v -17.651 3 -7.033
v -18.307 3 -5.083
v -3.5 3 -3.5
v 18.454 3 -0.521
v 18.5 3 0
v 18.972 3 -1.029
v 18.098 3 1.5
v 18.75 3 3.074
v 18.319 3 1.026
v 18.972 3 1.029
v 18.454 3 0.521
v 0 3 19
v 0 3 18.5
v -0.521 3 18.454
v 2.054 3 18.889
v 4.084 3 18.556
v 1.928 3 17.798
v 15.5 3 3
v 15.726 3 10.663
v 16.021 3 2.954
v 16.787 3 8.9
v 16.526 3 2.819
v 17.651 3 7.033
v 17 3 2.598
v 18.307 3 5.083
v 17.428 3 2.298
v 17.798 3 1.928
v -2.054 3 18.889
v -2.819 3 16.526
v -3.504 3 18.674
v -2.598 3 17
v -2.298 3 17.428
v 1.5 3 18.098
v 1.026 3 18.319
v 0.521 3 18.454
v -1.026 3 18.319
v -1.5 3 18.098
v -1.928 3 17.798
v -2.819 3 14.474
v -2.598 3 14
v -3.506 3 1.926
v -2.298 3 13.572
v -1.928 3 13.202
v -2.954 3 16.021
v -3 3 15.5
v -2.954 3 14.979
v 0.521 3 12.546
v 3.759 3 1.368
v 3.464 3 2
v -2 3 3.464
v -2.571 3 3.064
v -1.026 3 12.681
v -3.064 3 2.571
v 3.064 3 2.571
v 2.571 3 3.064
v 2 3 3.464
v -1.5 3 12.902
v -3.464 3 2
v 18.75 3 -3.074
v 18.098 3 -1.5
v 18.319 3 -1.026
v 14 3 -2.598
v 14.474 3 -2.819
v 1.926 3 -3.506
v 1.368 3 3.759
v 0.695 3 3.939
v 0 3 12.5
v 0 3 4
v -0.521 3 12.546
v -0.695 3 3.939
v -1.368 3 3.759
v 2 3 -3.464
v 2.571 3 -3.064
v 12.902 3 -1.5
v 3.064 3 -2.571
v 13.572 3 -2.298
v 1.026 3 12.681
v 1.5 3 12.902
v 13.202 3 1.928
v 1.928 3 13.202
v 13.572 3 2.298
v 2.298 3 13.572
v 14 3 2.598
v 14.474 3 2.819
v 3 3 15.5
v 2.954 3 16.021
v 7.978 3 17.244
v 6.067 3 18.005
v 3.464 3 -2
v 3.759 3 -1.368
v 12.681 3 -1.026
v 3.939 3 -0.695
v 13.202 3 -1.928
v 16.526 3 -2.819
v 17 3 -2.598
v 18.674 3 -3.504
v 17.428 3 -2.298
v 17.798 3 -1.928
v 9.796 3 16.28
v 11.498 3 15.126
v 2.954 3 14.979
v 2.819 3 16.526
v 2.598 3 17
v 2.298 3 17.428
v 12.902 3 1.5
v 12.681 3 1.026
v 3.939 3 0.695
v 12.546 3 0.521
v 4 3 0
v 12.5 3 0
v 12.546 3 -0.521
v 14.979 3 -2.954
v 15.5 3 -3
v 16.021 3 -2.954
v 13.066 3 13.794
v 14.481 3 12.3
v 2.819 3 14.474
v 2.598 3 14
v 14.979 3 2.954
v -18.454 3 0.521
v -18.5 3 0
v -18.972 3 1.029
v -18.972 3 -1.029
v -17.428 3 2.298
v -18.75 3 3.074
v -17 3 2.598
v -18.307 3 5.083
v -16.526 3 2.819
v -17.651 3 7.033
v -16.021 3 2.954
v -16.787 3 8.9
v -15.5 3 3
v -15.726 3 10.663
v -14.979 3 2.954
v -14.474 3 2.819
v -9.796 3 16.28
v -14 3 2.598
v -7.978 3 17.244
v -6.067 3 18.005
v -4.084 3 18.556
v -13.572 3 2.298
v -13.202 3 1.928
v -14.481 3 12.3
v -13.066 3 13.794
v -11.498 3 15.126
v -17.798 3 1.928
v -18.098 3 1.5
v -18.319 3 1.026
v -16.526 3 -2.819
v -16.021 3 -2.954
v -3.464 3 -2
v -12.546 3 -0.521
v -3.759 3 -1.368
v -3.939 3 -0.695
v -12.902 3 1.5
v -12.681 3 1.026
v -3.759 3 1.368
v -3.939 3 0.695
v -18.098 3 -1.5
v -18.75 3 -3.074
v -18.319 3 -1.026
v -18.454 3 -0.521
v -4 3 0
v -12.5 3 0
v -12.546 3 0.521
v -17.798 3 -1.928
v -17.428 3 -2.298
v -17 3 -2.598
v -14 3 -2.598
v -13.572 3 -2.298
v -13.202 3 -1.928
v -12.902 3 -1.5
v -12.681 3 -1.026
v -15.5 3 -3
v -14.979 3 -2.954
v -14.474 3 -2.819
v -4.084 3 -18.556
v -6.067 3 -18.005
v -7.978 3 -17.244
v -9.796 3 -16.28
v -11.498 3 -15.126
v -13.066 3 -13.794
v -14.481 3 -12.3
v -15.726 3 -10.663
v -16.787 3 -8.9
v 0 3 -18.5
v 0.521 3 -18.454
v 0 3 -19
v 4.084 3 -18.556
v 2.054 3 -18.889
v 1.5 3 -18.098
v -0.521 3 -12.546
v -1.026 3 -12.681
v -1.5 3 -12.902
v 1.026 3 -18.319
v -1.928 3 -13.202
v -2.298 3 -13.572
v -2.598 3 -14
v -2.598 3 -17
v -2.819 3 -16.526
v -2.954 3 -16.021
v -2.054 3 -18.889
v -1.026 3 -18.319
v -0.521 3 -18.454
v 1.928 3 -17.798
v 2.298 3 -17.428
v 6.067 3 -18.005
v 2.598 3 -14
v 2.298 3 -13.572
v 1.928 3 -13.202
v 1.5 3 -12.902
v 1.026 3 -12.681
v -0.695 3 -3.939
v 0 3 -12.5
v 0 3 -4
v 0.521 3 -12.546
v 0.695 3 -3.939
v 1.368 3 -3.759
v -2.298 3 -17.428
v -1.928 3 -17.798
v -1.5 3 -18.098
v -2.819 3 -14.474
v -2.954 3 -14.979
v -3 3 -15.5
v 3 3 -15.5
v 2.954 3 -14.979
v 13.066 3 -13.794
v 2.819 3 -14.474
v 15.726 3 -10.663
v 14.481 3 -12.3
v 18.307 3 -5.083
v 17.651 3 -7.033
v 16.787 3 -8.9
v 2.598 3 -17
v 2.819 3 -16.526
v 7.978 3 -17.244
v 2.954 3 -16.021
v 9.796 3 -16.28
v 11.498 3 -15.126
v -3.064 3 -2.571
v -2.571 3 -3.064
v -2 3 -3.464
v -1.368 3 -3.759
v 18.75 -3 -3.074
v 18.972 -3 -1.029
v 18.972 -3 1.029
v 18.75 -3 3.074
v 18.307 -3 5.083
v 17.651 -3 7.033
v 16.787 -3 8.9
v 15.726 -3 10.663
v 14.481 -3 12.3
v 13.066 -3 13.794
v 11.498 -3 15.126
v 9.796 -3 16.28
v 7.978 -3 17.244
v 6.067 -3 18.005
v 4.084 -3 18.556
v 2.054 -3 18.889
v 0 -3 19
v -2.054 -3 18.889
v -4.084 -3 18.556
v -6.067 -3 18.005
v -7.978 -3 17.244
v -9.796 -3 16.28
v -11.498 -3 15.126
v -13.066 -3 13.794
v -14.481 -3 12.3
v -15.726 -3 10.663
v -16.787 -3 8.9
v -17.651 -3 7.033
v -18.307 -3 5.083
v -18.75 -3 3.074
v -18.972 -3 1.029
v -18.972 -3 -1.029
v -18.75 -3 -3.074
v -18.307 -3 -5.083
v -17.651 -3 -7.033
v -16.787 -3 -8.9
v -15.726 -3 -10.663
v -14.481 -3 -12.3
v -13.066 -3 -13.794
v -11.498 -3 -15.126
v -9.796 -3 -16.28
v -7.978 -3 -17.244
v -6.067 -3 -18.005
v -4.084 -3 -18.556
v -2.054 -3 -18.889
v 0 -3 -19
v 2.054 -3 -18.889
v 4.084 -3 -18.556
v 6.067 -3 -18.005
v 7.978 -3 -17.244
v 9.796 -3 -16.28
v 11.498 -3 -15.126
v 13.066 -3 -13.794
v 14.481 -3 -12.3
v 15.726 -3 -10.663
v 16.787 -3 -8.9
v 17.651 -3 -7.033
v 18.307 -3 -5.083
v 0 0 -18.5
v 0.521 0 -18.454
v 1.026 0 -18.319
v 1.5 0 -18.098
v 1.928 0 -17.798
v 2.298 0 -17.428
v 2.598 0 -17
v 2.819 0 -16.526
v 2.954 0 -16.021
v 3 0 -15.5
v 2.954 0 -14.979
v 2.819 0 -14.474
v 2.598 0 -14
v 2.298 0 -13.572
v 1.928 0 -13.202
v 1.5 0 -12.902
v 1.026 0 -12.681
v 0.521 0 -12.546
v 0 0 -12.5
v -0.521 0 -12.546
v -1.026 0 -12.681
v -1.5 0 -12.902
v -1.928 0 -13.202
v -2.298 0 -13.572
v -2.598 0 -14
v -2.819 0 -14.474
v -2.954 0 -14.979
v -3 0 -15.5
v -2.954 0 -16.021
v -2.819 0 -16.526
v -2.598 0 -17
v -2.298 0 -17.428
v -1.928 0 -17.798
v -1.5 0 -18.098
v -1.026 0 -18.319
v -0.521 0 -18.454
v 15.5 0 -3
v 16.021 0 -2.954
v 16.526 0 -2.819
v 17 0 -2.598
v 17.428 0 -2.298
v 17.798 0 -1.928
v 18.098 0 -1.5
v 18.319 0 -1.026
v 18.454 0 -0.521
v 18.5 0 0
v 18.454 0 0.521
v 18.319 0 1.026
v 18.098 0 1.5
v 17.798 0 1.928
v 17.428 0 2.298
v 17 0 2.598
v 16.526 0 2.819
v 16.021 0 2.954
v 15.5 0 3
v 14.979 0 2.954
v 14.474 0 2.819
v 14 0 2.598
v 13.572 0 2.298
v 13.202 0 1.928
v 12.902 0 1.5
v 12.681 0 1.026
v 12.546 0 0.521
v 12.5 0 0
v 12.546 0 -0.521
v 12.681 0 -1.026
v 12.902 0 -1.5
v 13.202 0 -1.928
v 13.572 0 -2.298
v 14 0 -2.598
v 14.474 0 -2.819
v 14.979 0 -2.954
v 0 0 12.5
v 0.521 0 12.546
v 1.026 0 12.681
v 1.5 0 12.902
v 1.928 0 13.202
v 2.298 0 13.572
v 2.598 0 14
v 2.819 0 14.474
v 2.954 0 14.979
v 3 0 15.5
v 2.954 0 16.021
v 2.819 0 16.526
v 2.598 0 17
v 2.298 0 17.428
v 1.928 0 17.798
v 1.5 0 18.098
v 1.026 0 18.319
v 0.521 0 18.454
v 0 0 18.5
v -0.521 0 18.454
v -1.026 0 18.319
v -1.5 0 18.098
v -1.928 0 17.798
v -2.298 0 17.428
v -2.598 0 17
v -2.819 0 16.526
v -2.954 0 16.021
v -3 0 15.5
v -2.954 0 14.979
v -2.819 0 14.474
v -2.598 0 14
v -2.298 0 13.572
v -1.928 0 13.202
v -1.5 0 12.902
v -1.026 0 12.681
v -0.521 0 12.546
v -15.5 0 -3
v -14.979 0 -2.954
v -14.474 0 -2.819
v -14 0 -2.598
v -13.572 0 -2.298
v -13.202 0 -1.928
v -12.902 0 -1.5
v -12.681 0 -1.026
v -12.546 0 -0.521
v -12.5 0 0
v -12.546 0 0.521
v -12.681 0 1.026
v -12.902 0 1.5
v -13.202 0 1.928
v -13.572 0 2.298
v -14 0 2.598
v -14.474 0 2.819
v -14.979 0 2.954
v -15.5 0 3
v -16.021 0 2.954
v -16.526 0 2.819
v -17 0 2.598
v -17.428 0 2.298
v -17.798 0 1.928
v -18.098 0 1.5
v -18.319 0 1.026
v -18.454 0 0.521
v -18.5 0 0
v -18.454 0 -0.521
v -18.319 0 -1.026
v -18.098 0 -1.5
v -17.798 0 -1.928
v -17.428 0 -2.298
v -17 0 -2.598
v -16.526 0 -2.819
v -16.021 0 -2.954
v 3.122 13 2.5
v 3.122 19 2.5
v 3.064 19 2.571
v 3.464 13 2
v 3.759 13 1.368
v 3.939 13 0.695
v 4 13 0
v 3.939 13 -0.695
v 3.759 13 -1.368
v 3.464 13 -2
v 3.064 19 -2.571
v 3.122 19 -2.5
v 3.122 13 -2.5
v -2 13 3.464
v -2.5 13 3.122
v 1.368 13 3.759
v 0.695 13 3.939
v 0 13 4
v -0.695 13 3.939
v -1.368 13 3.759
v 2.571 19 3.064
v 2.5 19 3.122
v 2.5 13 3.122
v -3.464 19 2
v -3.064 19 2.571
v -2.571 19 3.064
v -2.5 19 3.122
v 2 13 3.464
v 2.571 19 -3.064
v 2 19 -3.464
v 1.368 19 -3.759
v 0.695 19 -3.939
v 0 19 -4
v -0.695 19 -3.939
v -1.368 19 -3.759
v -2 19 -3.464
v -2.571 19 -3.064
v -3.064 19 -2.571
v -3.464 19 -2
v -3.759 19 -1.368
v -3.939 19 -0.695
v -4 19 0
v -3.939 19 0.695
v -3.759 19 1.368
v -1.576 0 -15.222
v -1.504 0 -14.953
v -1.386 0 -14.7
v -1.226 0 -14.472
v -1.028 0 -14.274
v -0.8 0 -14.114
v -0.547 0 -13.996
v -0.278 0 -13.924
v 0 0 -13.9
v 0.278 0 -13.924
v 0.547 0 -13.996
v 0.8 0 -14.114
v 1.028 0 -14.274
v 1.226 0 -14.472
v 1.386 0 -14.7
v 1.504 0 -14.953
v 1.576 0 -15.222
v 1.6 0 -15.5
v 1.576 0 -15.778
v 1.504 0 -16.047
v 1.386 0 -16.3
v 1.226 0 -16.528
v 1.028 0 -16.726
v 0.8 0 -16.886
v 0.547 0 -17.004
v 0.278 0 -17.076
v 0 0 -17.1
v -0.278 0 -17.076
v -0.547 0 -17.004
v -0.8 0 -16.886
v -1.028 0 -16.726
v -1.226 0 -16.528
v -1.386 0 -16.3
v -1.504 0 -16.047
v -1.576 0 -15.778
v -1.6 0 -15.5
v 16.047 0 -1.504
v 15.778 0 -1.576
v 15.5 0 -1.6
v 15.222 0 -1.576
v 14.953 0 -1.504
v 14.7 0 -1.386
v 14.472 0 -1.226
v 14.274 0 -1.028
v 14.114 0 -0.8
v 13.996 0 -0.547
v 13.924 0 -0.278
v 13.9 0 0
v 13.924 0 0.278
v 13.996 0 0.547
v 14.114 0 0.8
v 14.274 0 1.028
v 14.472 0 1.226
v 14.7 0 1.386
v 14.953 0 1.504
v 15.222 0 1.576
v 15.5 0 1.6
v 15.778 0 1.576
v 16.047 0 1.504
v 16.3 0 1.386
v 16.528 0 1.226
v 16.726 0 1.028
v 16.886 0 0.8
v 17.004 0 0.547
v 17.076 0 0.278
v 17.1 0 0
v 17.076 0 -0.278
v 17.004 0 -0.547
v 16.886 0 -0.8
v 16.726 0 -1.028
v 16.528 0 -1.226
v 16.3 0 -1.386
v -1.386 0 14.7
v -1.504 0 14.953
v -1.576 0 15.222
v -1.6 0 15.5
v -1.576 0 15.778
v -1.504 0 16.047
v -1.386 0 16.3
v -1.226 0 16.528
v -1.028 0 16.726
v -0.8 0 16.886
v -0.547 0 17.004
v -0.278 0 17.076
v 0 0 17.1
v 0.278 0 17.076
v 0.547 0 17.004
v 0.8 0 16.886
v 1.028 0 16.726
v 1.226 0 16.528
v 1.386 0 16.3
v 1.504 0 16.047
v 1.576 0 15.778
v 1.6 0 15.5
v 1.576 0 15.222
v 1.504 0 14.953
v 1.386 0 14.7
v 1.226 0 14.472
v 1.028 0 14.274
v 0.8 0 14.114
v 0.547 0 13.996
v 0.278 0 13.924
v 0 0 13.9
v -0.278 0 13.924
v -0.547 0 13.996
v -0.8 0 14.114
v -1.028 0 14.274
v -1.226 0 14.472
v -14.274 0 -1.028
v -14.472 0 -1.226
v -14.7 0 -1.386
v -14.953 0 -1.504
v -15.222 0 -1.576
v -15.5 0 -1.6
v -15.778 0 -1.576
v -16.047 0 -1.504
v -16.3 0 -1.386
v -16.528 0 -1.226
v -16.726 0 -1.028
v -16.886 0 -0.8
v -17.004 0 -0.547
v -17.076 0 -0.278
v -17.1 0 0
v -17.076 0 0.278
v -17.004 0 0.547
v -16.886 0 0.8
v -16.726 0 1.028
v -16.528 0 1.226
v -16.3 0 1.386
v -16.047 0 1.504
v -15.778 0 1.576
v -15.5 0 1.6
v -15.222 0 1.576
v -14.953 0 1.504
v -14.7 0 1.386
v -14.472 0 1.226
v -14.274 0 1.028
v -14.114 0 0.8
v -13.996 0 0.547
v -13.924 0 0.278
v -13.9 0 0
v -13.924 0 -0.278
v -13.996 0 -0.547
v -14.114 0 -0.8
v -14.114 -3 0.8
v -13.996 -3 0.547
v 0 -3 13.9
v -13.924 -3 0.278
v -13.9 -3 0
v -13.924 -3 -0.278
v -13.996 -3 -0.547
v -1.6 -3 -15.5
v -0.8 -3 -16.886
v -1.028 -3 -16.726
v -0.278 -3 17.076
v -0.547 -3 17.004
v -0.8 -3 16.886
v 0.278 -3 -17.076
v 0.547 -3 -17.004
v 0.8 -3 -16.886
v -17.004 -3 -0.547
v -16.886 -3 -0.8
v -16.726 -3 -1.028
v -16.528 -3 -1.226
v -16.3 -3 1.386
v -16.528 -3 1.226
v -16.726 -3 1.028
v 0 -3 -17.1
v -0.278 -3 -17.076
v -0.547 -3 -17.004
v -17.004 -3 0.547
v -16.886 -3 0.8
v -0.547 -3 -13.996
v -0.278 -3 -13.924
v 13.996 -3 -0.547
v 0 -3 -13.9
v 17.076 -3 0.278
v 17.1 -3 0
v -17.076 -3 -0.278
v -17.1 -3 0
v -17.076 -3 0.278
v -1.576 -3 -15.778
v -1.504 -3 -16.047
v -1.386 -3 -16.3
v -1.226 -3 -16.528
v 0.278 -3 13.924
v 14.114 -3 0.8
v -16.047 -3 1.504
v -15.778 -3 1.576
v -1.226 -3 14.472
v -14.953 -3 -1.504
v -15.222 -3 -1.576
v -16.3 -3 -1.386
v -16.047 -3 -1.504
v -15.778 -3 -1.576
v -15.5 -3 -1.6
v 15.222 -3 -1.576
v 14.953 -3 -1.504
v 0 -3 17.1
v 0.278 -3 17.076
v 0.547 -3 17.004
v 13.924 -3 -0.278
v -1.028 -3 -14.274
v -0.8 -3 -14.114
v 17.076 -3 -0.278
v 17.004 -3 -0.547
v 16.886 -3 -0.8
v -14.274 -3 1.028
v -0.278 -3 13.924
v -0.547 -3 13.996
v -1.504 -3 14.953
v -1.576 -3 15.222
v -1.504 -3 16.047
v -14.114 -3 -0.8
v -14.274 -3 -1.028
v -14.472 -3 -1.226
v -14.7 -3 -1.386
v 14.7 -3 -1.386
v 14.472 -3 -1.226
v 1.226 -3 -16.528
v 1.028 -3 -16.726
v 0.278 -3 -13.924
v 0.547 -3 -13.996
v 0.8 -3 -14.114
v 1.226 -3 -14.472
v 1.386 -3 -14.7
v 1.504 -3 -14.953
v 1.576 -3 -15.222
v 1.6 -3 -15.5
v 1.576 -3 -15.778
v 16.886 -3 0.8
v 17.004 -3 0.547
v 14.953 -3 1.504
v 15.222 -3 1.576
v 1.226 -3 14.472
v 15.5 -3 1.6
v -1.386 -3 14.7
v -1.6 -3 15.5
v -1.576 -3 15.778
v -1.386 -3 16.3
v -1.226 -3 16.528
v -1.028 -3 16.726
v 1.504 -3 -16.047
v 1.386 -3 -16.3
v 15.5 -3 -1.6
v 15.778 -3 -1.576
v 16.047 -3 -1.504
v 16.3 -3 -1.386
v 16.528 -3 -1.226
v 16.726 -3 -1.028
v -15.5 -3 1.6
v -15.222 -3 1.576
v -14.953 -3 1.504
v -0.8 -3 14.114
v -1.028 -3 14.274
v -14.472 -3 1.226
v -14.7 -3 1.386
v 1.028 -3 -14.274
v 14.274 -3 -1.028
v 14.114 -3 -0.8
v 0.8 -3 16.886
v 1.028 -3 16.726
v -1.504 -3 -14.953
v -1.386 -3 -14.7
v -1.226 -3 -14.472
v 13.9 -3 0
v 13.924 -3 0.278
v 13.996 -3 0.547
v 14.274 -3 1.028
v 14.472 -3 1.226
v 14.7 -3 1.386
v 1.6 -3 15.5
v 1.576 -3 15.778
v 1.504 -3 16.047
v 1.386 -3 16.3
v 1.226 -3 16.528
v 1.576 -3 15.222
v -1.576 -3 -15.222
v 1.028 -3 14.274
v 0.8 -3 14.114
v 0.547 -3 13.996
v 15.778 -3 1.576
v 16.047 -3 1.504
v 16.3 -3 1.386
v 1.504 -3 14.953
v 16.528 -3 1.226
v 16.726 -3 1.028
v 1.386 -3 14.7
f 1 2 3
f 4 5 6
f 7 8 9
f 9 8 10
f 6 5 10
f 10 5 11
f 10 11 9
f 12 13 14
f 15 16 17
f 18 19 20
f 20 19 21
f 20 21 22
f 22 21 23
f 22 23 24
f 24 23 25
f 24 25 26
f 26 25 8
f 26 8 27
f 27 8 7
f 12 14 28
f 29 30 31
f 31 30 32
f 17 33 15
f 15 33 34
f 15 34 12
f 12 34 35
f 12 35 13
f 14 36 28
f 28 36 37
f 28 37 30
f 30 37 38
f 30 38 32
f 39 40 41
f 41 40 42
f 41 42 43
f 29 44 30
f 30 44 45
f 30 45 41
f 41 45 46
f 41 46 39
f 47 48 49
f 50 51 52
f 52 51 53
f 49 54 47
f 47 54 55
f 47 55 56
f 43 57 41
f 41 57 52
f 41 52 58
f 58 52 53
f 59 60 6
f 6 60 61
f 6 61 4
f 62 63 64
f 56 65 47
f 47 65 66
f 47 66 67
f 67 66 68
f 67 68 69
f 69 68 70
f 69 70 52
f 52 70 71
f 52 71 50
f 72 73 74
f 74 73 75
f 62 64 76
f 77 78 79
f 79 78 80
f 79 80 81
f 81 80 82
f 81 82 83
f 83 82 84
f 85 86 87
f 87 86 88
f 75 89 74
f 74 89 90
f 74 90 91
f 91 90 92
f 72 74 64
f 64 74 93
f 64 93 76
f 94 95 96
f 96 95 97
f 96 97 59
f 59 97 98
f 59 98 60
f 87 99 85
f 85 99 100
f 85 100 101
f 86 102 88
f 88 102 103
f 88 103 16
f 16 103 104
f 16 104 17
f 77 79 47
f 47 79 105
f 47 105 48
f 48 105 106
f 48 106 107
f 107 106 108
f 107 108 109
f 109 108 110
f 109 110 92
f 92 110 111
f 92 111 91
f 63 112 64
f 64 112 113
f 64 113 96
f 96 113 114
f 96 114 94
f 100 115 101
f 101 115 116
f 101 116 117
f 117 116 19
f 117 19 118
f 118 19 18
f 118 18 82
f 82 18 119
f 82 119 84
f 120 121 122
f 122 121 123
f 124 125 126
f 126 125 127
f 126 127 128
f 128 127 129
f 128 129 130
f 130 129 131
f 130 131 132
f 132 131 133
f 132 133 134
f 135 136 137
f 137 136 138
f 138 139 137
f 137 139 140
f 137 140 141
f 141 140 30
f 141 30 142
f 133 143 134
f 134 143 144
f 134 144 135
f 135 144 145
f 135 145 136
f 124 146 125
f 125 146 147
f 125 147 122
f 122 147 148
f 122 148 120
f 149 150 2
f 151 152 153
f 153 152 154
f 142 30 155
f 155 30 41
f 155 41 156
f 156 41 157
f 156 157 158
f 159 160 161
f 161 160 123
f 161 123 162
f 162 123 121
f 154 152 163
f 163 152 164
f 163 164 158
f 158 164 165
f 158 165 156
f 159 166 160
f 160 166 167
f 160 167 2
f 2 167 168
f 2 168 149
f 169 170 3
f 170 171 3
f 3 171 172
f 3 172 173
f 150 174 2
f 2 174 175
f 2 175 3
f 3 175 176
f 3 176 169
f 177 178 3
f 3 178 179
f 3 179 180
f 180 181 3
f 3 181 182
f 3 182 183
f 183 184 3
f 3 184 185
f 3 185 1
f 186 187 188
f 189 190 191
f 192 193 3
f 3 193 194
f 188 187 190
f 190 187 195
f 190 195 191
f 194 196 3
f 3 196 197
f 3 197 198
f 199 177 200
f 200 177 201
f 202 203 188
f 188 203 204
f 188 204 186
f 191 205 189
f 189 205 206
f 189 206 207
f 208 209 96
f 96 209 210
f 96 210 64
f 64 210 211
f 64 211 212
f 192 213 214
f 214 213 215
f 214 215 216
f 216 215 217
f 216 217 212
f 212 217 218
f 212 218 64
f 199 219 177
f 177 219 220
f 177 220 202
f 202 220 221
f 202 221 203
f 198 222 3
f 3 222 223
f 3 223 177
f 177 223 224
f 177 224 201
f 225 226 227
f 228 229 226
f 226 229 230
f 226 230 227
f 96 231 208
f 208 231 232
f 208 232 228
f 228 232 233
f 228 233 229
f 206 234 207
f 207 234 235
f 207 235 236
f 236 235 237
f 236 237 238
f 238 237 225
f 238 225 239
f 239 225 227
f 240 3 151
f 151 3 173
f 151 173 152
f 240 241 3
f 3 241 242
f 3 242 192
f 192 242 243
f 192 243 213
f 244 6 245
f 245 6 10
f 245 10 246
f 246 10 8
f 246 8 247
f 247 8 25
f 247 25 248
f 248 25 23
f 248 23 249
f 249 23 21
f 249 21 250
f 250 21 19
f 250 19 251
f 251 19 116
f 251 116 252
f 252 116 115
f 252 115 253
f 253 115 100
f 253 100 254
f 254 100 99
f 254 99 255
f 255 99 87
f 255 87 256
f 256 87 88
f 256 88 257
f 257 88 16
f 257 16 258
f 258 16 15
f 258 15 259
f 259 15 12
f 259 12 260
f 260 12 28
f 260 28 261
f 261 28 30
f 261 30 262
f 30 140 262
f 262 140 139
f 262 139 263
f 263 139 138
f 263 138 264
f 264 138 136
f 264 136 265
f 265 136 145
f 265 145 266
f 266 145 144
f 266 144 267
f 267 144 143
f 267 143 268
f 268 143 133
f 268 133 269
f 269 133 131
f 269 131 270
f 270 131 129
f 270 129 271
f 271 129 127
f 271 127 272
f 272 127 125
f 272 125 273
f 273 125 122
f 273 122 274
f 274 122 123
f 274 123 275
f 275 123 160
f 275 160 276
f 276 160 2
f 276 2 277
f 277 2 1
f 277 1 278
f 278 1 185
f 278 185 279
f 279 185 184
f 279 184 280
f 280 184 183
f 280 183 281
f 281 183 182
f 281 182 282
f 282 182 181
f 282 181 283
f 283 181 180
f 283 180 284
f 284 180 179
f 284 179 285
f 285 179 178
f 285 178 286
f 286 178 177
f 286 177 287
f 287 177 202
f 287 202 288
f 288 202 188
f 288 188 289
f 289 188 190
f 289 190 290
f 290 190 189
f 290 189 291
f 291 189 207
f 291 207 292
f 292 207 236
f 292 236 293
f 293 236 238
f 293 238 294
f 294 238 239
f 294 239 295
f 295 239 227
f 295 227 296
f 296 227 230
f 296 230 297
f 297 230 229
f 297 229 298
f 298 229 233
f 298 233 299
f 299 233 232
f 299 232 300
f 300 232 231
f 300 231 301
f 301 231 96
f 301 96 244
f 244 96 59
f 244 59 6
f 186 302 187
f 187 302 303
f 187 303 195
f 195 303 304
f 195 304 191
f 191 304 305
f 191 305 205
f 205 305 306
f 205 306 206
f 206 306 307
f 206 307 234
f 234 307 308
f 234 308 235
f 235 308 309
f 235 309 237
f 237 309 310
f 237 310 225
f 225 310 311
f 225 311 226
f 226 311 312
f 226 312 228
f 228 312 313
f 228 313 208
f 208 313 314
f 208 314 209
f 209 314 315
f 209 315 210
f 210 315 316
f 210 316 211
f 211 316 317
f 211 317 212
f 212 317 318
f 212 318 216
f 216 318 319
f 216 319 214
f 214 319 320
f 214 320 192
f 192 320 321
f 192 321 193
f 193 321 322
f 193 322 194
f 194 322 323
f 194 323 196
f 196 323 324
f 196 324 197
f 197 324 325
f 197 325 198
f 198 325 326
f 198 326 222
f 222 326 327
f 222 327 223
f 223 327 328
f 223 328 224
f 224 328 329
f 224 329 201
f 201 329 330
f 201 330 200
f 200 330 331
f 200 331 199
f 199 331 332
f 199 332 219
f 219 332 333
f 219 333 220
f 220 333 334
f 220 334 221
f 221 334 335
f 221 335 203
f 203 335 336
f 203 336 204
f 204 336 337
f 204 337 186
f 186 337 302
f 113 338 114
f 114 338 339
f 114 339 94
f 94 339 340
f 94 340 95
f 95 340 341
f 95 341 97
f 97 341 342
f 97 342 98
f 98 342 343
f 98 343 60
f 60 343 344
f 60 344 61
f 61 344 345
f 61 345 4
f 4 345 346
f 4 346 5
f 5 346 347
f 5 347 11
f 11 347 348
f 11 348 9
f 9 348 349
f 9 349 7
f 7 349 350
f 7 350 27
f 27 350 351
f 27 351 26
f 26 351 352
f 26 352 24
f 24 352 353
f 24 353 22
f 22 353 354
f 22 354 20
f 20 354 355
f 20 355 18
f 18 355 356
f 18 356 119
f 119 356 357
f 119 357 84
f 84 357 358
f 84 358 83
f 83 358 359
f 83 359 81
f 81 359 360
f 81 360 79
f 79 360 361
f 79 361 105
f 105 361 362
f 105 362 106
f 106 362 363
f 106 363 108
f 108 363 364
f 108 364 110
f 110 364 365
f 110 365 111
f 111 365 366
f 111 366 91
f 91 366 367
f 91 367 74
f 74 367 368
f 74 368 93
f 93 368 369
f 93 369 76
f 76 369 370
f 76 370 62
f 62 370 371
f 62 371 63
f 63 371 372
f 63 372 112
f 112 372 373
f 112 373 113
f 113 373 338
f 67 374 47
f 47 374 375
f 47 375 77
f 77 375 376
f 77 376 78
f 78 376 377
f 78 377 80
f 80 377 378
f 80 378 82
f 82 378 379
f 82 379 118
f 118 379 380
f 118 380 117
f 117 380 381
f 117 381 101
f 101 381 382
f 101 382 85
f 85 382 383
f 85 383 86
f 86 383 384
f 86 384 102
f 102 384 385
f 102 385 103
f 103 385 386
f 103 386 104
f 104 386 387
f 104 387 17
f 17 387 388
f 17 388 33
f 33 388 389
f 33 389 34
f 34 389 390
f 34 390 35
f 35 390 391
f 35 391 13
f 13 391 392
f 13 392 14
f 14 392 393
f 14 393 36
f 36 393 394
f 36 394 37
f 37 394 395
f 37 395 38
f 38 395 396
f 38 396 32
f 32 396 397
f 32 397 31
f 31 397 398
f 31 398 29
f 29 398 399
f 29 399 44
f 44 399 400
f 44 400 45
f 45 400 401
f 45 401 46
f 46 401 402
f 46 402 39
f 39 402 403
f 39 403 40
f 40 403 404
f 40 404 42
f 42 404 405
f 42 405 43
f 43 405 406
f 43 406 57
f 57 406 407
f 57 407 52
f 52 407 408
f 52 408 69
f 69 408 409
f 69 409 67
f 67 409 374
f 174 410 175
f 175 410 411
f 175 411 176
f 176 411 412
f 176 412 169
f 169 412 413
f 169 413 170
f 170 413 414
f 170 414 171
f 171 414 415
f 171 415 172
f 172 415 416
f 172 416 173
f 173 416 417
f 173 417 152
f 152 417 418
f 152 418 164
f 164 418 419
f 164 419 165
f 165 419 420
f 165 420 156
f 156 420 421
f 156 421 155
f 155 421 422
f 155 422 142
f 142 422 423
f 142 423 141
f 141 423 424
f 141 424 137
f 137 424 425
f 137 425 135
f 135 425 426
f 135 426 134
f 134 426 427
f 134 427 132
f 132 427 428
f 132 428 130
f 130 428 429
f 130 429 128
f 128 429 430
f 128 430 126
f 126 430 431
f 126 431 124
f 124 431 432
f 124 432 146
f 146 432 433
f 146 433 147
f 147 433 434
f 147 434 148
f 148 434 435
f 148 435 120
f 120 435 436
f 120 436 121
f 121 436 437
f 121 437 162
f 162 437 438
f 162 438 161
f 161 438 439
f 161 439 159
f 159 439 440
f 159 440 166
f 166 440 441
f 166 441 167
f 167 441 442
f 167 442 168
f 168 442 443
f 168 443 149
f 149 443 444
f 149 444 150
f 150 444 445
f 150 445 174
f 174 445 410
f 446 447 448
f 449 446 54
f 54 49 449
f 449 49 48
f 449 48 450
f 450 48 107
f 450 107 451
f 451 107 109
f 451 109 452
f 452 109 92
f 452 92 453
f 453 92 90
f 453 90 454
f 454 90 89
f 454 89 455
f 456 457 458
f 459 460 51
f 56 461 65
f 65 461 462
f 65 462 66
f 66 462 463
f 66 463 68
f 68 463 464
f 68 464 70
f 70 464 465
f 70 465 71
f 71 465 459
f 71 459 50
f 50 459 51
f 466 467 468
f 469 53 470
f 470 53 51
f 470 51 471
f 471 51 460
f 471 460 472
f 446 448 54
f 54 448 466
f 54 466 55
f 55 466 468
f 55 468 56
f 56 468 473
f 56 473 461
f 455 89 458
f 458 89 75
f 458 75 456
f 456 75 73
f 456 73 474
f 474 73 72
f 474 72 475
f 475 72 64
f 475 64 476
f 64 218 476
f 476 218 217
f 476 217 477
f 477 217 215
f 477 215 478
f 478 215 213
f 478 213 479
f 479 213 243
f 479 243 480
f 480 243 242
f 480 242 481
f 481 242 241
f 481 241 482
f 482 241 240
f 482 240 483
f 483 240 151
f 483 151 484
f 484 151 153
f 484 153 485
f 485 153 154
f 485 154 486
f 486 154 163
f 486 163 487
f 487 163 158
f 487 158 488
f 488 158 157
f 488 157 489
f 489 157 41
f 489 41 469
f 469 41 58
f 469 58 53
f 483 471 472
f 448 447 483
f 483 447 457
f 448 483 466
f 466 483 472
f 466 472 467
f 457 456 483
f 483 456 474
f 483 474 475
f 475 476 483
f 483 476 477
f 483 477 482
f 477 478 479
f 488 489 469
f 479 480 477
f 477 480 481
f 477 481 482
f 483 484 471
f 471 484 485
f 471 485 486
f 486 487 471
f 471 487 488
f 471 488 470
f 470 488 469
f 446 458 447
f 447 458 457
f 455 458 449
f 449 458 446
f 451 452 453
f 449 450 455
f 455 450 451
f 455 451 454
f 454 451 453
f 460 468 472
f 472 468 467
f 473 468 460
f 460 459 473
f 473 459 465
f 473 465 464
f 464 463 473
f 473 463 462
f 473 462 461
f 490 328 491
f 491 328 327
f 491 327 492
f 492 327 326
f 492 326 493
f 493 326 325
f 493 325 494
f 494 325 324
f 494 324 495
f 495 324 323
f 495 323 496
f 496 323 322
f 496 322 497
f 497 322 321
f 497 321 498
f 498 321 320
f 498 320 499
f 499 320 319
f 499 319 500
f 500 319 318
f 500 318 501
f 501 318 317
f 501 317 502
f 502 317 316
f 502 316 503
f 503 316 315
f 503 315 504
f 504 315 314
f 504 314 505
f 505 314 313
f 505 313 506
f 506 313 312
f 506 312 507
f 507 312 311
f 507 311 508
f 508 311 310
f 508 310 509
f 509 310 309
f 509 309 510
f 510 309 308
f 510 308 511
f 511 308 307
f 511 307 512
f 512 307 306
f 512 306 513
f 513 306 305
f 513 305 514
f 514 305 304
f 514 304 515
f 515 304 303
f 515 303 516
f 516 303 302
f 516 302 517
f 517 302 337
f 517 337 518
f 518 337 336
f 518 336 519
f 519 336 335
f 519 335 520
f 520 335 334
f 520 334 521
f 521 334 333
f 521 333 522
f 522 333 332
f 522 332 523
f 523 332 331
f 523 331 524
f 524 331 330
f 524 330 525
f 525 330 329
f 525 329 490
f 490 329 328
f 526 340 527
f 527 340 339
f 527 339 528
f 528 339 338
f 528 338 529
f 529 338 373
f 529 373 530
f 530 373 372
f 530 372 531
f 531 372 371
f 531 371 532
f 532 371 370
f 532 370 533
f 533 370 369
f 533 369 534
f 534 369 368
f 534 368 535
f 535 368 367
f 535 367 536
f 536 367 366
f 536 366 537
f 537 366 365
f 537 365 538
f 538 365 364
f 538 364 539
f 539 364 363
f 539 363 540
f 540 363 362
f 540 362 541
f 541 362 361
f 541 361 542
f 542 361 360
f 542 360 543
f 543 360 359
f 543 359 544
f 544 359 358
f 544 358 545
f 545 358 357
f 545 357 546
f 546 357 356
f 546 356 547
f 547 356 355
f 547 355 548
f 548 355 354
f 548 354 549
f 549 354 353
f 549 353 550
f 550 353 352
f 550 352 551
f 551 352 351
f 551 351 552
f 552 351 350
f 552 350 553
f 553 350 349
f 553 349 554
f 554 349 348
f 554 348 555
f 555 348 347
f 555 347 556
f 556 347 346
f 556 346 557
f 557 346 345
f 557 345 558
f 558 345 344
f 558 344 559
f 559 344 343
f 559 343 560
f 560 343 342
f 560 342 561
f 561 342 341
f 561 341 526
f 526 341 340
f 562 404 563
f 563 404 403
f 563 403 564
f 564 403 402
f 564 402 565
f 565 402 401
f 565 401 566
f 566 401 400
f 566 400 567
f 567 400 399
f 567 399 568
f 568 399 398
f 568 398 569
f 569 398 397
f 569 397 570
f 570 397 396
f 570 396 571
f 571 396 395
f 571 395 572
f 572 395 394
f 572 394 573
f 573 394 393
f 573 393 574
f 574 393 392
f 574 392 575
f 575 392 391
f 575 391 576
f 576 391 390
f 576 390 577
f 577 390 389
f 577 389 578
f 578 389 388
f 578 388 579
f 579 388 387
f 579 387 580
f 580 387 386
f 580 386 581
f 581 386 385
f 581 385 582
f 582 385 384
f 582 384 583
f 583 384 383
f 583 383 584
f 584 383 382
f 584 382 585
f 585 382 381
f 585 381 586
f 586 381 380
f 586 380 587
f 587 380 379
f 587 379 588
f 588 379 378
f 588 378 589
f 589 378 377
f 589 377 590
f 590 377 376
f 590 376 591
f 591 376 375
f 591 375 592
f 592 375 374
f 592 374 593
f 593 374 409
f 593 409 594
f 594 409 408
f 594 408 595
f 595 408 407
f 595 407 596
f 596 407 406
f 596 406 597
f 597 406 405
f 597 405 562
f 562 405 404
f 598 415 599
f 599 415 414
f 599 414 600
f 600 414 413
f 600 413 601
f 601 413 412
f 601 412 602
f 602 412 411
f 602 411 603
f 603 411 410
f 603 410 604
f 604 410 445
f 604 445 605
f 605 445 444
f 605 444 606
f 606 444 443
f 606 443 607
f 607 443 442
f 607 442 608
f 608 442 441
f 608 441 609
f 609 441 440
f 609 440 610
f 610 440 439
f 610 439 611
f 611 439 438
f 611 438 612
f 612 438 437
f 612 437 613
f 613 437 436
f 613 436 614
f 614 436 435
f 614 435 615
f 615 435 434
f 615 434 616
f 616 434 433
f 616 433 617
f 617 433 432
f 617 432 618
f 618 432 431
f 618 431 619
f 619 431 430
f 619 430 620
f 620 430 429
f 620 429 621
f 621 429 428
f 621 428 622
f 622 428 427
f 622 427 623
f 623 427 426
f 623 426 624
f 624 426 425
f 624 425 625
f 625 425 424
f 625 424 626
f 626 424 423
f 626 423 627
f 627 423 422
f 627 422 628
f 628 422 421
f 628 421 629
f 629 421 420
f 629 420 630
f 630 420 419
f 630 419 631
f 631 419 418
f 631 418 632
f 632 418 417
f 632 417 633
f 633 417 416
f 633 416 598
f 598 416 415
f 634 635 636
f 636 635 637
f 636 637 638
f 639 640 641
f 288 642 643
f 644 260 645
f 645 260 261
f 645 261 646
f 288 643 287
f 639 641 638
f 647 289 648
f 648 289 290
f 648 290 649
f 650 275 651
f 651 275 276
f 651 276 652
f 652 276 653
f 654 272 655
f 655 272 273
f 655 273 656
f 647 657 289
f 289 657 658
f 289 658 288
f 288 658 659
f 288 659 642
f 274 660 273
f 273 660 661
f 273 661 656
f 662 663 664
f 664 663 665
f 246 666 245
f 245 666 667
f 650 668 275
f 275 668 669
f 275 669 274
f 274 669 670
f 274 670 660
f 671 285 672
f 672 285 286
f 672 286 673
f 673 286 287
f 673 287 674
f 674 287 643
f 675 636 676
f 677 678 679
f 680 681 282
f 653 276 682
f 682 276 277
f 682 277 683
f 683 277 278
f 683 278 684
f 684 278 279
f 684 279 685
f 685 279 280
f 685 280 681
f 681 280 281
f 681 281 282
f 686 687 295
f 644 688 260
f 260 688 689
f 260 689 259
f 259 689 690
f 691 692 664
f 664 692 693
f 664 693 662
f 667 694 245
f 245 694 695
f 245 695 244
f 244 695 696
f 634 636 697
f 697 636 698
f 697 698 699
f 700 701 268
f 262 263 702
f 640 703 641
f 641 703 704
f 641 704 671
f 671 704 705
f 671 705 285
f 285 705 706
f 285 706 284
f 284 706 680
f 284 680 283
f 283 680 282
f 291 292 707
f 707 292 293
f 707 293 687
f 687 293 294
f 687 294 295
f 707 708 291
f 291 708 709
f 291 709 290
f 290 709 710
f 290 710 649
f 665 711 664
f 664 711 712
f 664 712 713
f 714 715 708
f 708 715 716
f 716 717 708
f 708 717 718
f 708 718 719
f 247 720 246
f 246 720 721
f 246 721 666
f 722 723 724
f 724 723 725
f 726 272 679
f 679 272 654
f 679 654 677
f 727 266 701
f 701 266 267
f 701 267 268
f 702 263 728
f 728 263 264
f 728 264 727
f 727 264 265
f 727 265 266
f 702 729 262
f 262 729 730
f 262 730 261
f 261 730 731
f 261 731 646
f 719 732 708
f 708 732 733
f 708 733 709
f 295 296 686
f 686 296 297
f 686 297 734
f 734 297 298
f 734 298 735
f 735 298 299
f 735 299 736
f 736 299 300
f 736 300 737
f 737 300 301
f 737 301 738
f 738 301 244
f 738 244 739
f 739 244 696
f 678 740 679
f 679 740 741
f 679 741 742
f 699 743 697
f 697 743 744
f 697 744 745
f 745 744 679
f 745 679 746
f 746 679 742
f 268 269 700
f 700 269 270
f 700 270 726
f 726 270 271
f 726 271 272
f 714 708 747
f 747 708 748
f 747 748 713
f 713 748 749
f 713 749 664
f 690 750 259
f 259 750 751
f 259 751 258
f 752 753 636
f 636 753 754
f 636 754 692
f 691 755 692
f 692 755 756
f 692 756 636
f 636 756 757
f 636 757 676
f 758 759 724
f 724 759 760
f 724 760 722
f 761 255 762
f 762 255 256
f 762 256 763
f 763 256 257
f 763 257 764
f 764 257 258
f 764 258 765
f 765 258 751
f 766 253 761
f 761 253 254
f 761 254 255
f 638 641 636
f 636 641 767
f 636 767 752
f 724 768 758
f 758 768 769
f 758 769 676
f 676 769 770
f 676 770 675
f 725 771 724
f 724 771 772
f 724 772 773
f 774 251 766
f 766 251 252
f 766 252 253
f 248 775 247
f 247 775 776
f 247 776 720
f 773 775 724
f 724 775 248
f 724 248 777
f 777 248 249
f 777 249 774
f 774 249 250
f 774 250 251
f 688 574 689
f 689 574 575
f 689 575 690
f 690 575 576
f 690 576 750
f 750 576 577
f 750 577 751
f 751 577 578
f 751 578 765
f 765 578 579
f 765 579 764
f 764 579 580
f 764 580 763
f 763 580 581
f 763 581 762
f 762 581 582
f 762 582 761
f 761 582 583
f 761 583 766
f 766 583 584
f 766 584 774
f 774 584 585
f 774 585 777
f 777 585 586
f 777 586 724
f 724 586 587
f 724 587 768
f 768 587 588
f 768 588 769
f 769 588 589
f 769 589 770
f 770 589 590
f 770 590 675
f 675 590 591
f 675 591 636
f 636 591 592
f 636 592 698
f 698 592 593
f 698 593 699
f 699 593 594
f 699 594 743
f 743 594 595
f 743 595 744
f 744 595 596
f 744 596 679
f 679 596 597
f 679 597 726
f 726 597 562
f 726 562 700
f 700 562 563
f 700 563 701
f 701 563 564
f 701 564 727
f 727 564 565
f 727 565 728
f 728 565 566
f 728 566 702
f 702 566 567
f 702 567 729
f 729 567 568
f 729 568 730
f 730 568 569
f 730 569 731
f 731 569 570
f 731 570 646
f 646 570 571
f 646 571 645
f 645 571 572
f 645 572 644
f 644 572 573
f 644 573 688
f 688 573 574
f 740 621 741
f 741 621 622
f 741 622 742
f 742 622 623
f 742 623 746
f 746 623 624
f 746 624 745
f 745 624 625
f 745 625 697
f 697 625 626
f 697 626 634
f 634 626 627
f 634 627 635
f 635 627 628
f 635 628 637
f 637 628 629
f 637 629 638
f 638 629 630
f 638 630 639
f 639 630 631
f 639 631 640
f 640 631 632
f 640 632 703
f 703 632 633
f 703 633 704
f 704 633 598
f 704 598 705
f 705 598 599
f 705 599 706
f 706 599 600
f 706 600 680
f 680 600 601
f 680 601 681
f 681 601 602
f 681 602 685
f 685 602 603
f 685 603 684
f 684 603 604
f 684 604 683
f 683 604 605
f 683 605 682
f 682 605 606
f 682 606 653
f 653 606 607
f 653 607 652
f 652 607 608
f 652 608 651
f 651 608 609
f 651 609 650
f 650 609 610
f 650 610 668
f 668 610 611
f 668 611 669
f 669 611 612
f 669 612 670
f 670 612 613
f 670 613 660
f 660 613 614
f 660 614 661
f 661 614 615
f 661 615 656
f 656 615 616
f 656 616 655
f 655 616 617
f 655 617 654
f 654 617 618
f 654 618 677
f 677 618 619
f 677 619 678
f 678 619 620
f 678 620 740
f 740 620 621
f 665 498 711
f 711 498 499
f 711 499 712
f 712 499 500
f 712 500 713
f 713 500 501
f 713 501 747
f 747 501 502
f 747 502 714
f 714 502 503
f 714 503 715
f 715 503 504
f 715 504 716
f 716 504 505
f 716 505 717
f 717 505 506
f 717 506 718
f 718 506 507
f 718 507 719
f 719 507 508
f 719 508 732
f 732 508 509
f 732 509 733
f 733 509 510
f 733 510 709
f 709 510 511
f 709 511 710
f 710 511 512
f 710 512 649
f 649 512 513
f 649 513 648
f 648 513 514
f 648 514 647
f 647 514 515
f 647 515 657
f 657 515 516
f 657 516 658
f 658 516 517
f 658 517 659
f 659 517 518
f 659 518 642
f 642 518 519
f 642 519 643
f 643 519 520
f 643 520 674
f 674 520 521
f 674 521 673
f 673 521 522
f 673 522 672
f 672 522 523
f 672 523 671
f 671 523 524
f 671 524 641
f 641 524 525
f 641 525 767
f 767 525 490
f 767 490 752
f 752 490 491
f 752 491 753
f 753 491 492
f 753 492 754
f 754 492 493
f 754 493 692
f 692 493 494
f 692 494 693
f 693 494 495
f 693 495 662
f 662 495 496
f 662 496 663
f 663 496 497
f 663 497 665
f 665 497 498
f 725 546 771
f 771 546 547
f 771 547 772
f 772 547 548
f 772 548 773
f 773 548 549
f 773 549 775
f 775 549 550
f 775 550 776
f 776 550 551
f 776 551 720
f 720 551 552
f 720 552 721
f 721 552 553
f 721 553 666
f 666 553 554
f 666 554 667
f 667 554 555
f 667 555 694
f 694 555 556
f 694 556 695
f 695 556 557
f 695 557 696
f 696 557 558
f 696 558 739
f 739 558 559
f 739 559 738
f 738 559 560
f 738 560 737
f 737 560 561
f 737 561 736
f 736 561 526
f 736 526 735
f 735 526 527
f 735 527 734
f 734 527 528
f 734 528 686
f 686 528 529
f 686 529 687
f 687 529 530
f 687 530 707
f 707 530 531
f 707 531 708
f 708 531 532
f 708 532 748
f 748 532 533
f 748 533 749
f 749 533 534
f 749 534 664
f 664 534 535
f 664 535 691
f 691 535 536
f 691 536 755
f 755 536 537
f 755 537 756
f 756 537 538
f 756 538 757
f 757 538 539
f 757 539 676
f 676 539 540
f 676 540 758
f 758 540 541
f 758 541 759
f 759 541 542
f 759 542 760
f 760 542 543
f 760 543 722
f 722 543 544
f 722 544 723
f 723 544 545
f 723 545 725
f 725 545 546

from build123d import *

# Parameters (mm, degrees)
SKETCH1_R           = 19
SKETCH1_R_2         = 3
BOSS_EXTRUDE1_DEPTH = 3
SKETCH2_R           = 4
BOSS_EXTRUDE2_DEPTH = 16
CUT_EXTRUDE1_START  = -6
CUT_EXTRUDE1_DEPTH  = 6
BOSS_EXTRUDE3_START = 3
SKETCH5_R           = 19
SKETCH5_R_2         = 1.6
BOSS_EXTRUDE3_DEPTH = 3


with BuildPart() as part:
    # Sketch1 → Boss-Extrude1 (new body)
    with BuildSketch(Plane(origin=(0, 0, 0), x_dir=(1, 0, 0), z_dir=(0, 1, 0))):
        with Locations(Location((0, 0, 0), (0, 0, 270))):
            Circle(SKETCH1_R)
        with Locations(Location((0, 15.5, 0), (0, 0, 270))):
            Circle(SKETCH1_R_2, mode=Mode.SUBTRACT)
        with Locations(Location((15.5, 0, 0), (0, 0, 270))):
            Circle(SKETCH1_R_2, mode=Mode.SUBTRACT)
        with Locations(Location((0, -15.5, 0), (0, 0, 270))):
            Circle(SKETCH1_R_2, mode=Mode.SUBTRACT)
        with Locations(Location((-15.5, 0, 0), (0, 0, 270))):
            Circle(SKETCH1_R_2, mode=Mode.SUBTRACT)
    extrude(amount=BOSS_EXTRUDE1_DEPTH)

    # Sketch2 → Boss-Extrude2 (add)
    with BuildSketch(Plane(origin=(0, 3, 0), x_dir=(1, 0, 0), z_dir=(0, 1, 0))):
        with Locations(Location((0, 0, 0), (0, 0, 270))):
            Circle(SKETCH2_R)
    extrude(amount=BOSS_EXTRUDE2_DEPTH)

    # Sketch4 → Cut-Extrude1 (cut)
    with BuildSketch(Plane(origin=(0, 19, 0), x_dir=(1, 0, 0), z_dir=(0, 1, 0)).offset(CUT_EXTRUDE1_START)):
        with BuildLine():
            Line((-2.5, -3.122498999), (2.5, -3.122498999))
            ThreePointArc((2.5, -3.122498999), (0, -4), (-2.5, -3.122498999))
        make_face()
        with BuildLine():
            Line((3.122498999, 2.5), (3.122498999, -2.5))
            ThreePointArc((3.122498999, -2.5), (4, 0), (3.122498999, 2.5))
        make_face()
    extrude(amount=CUT_EXTRUDE1_DEPTH, mode=Mode.SUBTRACT)

    # Sketch5 → Boss-Extrude3 (add)
    with BuildSketch(Plane.XZ.offset(BOSS_EXTRUDE3_START)):
        with Locations(Location((0, 0, 0), (0, 0, 270))):
            Circle(SKETCH5_R)
        with Locations(Location((0, 15.5, 0), (0, 0, 270))):
            Circle(SKETCH5_R_2, mode=Mode.SUBTRACT)
        with Locations(Location((-15.5, 0, 0), (0, 0, 270))):
            Circle(SKETCH5_R_2, mode=Mode.SUBTRACT)
        with Locations(Location((0, -15.5, 0), (0, 0, 270))):
            Circle(SKETCH5_R_2, mode=Mode.SUBTRACT)
        with Locations(Location((15.5, 0, 0), (0, 0, 270))):
            Circle(SKETCH5_R_2, mode=Mode.SUBTRACT)
    extrude(amount=-BOSS_EXTRUDE3_DEPTH)


solid = part.part
